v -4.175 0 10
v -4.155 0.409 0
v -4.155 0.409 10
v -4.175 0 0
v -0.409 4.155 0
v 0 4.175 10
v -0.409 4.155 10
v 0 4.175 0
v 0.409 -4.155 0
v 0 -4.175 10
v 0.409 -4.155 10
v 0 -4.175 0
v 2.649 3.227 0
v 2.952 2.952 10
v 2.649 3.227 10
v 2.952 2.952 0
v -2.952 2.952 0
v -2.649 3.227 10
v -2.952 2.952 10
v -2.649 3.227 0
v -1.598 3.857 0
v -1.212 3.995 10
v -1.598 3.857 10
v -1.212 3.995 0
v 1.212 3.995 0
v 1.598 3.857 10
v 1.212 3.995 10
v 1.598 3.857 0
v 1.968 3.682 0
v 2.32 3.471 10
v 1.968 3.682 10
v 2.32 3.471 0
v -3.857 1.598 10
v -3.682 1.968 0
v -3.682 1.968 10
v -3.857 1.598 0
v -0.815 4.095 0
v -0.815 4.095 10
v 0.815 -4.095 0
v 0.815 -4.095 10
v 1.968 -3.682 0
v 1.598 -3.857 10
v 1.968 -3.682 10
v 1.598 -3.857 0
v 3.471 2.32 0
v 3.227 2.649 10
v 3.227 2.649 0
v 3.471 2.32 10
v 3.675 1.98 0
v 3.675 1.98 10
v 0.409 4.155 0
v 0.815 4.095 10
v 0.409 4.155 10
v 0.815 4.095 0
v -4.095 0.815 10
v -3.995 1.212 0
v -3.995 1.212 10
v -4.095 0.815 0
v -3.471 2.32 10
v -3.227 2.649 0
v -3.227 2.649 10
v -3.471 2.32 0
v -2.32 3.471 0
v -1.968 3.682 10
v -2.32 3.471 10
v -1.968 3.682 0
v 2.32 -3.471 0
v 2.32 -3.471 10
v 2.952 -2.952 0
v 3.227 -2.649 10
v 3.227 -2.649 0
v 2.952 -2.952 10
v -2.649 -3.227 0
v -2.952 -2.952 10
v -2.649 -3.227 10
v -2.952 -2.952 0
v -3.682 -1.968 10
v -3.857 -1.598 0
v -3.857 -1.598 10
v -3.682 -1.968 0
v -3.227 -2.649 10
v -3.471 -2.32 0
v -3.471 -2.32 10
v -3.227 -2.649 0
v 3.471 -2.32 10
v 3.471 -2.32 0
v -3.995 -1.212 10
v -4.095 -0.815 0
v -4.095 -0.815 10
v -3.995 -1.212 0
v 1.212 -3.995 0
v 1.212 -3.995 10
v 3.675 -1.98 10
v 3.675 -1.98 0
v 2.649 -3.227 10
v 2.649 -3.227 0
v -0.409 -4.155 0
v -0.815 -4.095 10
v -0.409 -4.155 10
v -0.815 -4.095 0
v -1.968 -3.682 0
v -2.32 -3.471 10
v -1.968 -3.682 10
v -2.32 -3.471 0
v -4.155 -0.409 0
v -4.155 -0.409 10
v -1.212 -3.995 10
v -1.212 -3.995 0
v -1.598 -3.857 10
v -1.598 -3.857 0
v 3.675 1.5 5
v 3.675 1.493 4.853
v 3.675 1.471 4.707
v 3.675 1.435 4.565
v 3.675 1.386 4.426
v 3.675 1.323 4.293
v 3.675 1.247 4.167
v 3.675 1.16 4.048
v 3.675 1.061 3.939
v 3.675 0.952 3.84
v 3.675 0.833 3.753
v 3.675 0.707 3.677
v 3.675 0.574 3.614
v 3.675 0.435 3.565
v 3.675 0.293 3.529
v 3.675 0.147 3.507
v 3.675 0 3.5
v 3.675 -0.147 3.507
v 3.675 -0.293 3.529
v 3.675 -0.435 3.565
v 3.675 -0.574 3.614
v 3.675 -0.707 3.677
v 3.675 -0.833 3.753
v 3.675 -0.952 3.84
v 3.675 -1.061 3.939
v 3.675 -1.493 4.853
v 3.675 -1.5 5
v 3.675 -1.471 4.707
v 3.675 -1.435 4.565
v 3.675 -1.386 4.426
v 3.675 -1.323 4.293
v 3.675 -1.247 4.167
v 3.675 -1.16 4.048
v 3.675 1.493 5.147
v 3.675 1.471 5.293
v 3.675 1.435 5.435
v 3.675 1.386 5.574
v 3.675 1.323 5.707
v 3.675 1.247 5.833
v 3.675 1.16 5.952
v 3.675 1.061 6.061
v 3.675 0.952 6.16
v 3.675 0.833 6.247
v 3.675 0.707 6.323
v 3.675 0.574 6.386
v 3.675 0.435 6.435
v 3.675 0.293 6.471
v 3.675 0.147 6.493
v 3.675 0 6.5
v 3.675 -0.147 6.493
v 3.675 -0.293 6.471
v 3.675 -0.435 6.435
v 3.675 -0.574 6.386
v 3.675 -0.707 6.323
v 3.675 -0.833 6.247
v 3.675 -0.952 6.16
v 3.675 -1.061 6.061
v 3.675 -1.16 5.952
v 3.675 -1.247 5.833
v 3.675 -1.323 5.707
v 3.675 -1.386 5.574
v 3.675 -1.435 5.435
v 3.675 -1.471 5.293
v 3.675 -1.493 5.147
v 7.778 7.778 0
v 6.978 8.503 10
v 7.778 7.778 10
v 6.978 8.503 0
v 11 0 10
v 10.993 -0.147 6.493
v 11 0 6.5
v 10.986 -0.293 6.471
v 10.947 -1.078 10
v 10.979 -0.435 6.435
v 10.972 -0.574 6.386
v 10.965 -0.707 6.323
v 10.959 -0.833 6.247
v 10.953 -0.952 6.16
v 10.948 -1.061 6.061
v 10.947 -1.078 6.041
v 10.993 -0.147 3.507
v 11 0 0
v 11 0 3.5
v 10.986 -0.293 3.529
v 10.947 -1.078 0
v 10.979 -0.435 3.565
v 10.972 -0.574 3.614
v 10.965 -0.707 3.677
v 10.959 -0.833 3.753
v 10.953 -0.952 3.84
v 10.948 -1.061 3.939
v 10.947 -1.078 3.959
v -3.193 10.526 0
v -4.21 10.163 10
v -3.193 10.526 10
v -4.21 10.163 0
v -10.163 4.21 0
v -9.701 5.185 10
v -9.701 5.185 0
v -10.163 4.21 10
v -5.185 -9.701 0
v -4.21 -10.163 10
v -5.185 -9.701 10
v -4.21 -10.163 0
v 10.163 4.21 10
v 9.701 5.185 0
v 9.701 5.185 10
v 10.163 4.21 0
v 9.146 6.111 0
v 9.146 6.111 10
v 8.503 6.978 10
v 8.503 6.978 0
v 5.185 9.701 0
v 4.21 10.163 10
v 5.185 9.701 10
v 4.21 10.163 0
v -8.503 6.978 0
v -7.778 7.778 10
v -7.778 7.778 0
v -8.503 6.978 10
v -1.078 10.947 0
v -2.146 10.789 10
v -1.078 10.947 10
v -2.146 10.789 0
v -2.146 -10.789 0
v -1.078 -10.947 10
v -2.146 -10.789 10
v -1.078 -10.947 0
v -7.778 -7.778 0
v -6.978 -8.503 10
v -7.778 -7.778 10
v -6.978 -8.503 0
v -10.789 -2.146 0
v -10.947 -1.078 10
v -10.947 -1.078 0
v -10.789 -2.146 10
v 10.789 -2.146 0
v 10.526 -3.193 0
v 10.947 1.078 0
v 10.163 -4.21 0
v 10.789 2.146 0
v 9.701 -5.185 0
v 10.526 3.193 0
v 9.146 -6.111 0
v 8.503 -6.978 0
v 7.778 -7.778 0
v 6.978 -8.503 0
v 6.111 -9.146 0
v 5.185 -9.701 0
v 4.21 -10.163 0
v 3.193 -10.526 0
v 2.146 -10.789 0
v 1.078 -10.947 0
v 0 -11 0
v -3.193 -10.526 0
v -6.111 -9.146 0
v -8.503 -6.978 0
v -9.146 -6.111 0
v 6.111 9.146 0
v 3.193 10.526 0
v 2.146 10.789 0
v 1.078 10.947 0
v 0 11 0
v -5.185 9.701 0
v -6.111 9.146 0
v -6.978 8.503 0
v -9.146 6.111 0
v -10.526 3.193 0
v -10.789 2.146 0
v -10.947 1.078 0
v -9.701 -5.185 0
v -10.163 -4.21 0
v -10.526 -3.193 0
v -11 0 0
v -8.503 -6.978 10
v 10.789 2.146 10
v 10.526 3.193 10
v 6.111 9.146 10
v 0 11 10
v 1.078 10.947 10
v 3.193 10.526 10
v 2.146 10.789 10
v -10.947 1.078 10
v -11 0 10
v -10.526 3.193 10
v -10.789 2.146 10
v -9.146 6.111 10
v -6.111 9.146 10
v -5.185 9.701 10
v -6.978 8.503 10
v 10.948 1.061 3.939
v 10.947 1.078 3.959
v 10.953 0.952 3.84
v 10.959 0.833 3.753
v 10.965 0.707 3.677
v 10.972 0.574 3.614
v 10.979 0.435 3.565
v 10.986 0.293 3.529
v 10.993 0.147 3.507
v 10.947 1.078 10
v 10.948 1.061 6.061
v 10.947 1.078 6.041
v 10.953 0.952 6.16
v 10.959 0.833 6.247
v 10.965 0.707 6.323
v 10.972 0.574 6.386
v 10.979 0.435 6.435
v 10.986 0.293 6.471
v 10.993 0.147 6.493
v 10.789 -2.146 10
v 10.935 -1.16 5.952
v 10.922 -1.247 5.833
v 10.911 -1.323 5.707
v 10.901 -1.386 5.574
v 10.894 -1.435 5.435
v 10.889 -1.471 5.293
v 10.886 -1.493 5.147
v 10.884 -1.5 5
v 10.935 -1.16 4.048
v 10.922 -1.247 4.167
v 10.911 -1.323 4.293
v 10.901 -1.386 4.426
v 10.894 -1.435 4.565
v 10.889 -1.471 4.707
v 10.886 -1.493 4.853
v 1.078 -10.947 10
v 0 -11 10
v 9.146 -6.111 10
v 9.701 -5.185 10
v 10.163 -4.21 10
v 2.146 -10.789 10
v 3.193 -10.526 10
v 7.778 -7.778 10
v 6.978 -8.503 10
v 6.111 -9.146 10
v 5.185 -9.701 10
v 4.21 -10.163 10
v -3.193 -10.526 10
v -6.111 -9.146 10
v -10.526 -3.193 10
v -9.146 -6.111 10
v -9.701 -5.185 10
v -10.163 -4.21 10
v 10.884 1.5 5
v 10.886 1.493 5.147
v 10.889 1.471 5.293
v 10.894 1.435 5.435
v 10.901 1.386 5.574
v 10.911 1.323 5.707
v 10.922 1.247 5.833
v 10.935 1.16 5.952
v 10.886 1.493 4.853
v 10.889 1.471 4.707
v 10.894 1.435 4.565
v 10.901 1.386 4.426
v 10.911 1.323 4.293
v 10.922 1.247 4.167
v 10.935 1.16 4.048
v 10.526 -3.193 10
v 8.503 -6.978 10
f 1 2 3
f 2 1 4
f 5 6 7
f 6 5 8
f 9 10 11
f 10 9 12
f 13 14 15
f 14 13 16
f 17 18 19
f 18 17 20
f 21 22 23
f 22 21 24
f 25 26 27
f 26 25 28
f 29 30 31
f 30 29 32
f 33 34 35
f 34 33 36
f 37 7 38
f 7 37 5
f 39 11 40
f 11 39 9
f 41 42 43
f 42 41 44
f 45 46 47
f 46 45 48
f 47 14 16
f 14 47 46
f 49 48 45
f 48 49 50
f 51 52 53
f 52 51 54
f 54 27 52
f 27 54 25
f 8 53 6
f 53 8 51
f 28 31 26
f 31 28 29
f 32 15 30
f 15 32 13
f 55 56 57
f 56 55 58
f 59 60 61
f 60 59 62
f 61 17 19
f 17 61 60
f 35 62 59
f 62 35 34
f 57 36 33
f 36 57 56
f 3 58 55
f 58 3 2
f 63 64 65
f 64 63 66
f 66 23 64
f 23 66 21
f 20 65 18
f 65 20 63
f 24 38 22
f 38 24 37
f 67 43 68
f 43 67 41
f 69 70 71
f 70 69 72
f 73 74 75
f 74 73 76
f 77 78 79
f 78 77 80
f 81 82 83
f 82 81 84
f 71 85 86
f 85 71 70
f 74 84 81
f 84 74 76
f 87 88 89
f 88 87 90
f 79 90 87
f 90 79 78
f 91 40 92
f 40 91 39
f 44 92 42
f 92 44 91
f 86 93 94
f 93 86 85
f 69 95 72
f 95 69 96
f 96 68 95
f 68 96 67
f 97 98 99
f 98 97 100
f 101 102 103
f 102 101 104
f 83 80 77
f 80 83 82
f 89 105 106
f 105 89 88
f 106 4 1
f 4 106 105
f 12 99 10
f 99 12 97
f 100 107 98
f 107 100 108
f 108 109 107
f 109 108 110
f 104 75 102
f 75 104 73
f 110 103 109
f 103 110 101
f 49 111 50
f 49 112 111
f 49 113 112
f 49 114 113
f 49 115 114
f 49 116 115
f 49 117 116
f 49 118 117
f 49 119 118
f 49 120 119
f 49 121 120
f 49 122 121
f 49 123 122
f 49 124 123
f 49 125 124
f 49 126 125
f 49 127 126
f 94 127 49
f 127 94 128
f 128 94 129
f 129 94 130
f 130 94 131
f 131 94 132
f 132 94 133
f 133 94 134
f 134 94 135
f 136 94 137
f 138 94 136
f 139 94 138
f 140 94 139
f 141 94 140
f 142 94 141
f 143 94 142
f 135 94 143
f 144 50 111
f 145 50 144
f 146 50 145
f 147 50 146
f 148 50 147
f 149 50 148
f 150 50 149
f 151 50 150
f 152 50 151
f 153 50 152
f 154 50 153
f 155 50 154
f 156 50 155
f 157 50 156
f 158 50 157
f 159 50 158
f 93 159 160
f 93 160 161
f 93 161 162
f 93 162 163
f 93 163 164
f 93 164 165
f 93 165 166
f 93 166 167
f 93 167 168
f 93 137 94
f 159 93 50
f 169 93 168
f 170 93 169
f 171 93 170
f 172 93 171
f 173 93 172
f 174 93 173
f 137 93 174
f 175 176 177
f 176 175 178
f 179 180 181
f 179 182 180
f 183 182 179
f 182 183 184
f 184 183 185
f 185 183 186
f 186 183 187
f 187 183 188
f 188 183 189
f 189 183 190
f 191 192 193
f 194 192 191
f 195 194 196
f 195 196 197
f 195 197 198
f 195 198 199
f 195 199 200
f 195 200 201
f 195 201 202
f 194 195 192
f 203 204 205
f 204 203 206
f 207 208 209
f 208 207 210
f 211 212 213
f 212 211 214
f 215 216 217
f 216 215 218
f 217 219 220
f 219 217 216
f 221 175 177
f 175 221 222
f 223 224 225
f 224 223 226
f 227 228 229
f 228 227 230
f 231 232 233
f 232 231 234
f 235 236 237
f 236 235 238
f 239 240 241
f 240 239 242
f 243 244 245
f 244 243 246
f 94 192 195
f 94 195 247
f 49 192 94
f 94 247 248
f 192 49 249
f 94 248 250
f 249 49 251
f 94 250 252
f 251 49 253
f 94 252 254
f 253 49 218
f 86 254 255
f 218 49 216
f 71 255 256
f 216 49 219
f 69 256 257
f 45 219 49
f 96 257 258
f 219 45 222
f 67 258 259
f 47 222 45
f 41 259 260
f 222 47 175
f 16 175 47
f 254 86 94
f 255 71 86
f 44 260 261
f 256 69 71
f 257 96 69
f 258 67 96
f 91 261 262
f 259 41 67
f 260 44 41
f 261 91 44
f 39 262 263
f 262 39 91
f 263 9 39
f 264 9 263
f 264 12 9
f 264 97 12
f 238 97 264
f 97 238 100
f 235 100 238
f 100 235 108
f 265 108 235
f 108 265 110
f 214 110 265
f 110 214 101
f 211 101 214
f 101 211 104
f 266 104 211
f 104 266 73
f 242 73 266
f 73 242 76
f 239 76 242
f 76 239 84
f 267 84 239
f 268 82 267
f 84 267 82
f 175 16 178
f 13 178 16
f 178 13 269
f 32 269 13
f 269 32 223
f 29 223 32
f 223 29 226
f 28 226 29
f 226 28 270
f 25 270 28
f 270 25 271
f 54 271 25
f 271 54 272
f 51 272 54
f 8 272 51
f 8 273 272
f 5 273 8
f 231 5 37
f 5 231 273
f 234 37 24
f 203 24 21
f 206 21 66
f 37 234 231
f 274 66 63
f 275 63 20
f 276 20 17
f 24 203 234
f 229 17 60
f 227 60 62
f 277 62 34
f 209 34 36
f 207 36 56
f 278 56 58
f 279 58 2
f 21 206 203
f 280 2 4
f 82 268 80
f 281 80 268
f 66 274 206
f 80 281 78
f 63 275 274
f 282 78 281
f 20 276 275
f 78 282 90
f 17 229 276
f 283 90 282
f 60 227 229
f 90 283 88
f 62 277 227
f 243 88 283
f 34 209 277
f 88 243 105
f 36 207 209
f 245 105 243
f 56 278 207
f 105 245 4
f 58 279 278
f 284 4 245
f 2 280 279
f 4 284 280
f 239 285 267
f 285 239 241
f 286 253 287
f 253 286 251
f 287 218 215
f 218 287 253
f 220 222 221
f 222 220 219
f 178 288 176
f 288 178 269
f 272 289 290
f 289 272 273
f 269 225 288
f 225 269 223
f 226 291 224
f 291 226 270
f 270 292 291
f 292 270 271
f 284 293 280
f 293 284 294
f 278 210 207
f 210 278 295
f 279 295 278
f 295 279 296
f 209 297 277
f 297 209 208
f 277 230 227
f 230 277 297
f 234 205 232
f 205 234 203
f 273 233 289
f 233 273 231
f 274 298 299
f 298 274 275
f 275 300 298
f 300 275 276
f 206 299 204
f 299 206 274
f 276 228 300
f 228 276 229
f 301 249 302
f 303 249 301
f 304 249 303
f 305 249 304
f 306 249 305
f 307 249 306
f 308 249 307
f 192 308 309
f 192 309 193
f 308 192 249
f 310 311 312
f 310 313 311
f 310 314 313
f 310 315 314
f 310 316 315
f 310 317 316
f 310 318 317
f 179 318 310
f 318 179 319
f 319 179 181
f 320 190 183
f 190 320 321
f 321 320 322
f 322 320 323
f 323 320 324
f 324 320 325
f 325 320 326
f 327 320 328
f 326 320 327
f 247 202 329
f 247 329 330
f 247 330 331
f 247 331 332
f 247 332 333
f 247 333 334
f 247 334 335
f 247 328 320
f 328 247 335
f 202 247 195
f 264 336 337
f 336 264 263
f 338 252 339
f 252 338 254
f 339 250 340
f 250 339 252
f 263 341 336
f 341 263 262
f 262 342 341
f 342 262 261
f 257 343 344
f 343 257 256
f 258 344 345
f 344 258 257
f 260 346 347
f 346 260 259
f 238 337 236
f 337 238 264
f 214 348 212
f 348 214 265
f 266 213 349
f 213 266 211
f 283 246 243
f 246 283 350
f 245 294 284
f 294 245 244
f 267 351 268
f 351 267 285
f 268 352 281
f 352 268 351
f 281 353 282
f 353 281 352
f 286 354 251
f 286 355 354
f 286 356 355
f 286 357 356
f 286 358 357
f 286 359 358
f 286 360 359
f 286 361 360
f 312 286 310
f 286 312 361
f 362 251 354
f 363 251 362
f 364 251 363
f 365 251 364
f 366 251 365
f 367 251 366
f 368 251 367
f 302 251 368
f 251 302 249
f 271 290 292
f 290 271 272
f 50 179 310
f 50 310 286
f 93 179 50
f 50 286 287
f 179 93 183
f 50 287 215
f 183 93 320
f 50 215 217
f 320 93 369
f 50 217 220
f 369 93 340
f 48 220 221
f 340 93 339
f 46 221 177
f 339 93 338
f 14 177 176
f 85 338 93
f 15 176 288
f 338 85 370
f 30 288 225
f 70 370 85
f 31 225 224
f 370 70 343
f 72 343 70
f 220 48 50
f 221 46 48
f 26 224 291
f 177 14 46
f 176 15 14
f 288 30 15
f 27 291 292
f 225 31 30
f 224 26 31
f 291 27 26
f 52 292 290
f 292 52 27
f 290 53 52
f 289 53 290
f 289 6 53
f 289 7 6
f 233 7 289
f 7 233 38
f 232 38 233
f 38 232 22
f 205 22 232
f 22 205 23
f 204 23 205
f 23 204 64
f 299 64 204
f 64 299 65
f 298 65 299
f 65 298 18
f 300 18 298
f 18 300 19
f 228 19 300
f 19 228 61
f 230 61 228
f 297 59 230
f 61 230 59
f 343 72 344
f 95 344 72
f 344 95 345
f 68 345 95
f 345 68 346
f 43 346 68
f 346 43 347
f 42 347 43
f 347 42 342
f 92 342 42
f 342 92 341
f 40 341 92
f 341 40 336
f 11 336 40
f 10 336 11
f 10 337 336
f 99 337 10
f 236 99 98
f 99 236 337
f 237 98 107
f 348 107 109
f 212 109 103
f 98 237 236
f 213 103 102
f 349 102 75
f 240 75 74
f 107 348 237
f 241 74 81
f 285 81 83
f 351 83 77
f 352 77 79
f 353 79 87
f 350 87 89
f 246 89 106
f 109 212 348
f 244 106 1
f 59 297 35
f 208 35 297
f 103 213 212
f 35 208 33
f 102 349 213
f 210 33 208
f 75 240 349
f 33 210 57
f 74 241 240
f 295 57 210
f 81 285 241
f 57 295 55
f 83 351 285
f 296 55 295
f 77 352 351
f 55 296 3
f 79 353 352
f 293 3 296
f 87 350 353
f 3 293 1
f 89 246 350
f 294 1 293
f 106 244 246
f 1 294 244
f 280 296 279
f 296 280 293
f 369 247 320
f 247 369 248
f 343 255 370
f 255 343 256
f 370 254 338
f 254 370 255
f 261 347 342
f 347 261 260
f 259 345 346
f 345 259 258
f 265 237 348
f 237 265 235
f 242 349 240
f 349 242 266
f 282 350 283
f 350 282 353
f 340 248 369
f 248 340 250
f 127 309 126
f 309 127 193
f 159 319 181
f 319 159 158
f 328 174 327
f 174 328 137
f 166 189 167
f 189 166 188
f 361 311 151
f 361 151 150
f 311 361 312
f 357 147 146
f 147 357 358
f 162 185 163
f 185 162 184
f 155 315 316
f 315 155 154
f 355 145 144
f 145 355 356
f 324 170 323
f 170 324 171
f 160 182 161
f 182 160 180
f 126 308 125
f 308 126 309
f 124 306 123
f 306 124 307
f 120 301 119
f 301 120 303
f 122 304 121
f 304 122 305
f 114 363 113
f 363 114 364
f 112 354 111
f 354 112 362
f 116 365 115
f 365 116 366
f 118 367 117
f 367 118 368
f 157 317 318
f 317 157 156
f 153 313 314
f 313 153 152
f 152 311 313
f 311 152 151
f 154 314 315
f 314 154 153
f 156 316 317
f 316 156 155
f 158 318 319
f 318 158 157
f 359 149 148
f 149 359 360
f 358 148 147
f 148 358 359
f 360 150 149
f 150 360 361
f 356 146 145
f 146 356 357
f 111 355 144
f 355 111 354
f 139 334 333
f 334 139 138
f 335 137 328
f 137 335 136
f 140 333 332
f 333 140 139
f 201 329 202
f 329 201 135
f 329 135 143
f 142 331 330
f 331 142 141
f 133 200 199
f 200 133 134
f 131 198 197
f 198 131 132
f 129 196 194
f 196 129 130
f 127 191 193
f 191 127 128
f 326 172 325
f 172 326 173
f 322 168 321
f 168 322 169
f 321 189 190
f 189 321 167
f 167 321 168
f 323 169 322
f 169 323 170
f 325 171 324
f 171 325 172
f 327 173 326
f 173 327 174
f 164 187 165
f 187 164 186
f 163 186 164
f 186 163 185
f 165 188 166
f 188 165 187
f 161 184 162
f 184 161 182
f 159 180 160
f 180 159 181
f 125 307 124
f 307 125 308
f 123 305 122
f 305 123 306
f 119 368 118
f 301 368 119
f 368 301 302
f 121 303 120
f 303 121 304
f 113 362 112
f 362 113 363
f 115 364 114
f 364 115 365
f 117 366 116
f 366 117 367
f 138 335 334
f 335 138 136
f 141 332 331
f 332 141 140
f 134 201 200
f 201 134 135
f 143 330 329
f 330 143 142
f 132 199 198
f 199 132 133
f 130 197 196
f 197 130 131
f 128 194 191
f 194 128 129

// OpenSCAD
// file: parameters.scad
// =============================================================================
// Gen-CL — nightly 2026-10-16 (physics_scorer, honest magpylib watts)
// Modular swap: exactly the Gen-CJ rotors, arcs and steel, on a thinner-copper stator (4.0 mm copper, so the magnet faces close in by 0.5 mm) that needs only ≈300 m of 26 AWG — the rest of the spool stays free. Swap stators by changing the gap sleeve only.
// Clocking 0 deg (magnets N facing S) + D-flat keyed bore + index notch + flip-symmetric hole map.
// Windable 2-piece bobbin; turns = physics_scorer turns_fit; copper only between flanges.
// Steel back-iron: 2× Ø198 × 4.76 mm (3/16") mild-steel discs (steel_backiron_disc.dxf); magnets sit ON the steel
// (through-pockets) -> score with --back-iron. Night 2026-10-16.
// =============================================================================
topology            = "dual_rotor";

// --- Wire / winding (physics_scorer winding-fit) -------------------------------
wire_awg            = 26;
wire_od             = 0.45;     // insulated OD mm (bare 0.405)
fill_realistic      = 0.65;     // insulated-wire area / window (DENSE layered wind with a jig; scorer cap 0.65)
turns               = 196;       // = physics_scorer turns_fit (do NOT raise)
coil_former_type    = "bobbin";
coil_core_inset     = 12.00;     // radial copper build: hub = copper boundary inset by this
wind_build_axial    = 0.0;      // nothing proud of the flanges
wind_build_radial   = 0.0;

// --- Bobbin (base + lid) ---------------------------------------------------------
coil_id_r           = 50.00;    // copper boundary sector
coil_od_r           = 104.00;
span_deg            = 25.99;    // = pitch - 2*asin((wall+0.85)/coil_id_r) -> >=1.2 mm stator web
former_web          = 4.00;     // copper height between flanges (TALL copper: steel keeps Bz up)
flange_t            = 0.80;     // >= 0.8 mm FDM wall rule (tall winds push on the flanges)
wall                = 0.80;     // flange lip beyond copper
former_bare_h       = former_web + 2 * flange_t;
coil_envelope_h     = former_bare_h + 2 * wind_build_axial;
tab_w               = 7.0;
tab_len             = 7.0;
tab_h               = former_bare_h / 2;
pin_d               = 1.9;      // 1.75 mm filament locating pin
coil_mount_r        = coil_od_r + 0.2 + 4.0;
lead_y              = 1.6;
lead_slot_w         = 0.9;
lead_groove_d       = 0.6;

// --- Gap -------------------------------------------------------------------------
run_clear           = 0.50;     // rotor face -> flange
gap_spacer_h        = run_clear + wind_build_axial;
m2m                 = coil_envelope_h + 2 * run_clear;   // rotor face to rotor face (= gap_sleeve length)

// --- Stator ----------------------------------------------------------------------
coil_stations       = 12;
bay_clear           = 0.35;     // 0.35 mm: bobbin BASES print IN PLACE inside the stator bays (print-in-place gap), then pop out
stator_thick        = former_bare_h;                        // bobbins flush both faces
stator_od           = 229.0;
shaft_clear_stator  = 14.0;     // stator is static; gap sleeve OD 12 spins inside
stator_ir           = 44.85;    // ANNULAR stator: open centre (nested one-plate pack); inner rim 4.0 mm

// --- Rotor(s) --------------------------------------------------------------------
magnet_Br           = 1.43;     // N52
magnet_d_large      = 20.0;
magnet_h_large      = 5.0;      // one O20x5 per pocket
magnet_h_small      = 5.0;      // one O5x5 per pocket
halbach_magnetisation = "diametric"; // O5x5 assist magnets MUST be DIAMETRICALLY magnetised (tangential)
rotor_b_same_axis   = true;     // same-index magnets share one axis: N faces S across the gap
large_pocket_d      = 20.3;
small_pocket_d      = 5.3;
pocket_h            = 5.00;     // THROUGH the carrier: magnet back face sits on the steel disc (FLUSH seat: carrier = magnet height, magnet face level with the rotor face)
large_n             = 8;
R_large             = 86.0;
R_small_inner       = 79.8;
R_small_mid         = 86.0;
R_small_outer       = 92.2;
small_r_list        = [R_small_inner, R_small_mid, R_small_outer];   // O5 pockets between poles
// --- N42 rectangular BLOCK magnets (2026-10-16/17): one 20x10x5 block per pole, radially INSIDE the O20 disc ---
block_R_list        = [64.5];   // block centre radius (pole angle); same polarity as its O20 -> radially extended pole
block_angle_list    = [0];
block_radial        = 20.0;    // block side that runs RADIALLY (mm)
block_tangential    = 10.0;    // block side that runs TANGENTIALLY (mm)
block_h             = 5.0;     // magnetised through the 5 mm thickness (axial), = magnet_h_large so it sits on the steel
block_Br            = 1.29;    // N42 remanence (1.28-1.32 T); scorer models it as a magpylib Cuboid
block_pocket_clear  = 0.3;    // pocket = block + 0.3 mm each way (+ 1.2 mm corner reliefs)
carrier_od          = 198.0;
ring_ir             = 51.35;    // RING rotor: PLA magnet ring r ring_ir..carrier_od/2 (steel disc = structural rotor)
hub_flange_od       = 58.0;     // separate rotor_hub flange (inside the ring, flush with the ring face)
csk_d               = 6.6;      // M3 countersunk head pocket (ISO 10642 head 6.0 nominal) on the stator face
csk_depth           = 1.55;     // = (csk_d - m3_clear) / 2: 90 deg cone; head sits 0.3 mm below the face
n_seg               = 8;        // magnet-carrier ARCS per rotor (segmented carrier)
seg_deg             = 360 / n_seg;
seg_start           = -32;   // arc edge angle (between pocket 0 and its clamp bolt)
seg_kerf_deg        = 0.4;      // gap between neighbouring arcs on the steel
carrier_thick       = pocket_h;
hub_h               = 12.0;     // > steel_t + insert: radial set-screw clears the steel
hub_od              = 24.0;     // slim hub so the M4 brace rods fit at R~18 inside the coil ring
hub_insert_d        = 4.0;      // M3 heat-set insert, radial, bears on the D-flat
rotor_b_offset_deg  = 0.0;      // CLOCKING: magnets directly opposite
shaft_key           = "dflat";
dflat_depth         = 0.5;      // 8 mm shaft with 0.5 mm flat (7.5 across flat)
index_notch_d       = 3.0;

// --- Steel back-iron (buyable laser-cut) -------------------------------------------
steel_t             = 4.76;      // mild steel thickness (image method ignores it; sized from steel_flux.py so the return path stays well below saturation)
steel_center_hole   = 26.0;     // slips over the rotor hub (OD 24)
steel_od            = carrier_od;   // steel disc OD = rotor carrier OD

// --- Modular MAX interface ----------------------------------------------------------
shaft_bore          = 8.35;
dflat_x             = 4.0 - dflat_depth + (shaft_bore - 8.0) / 2;
bearing_d           = 21.85;
bearing_h           = 7.2;
m3_clear            = 3.5;
bolt_r_inner        = 22.0;     // M3 steel-disc clamp bolts (inside the magnet ring)
bolt_n_inner        = 4;
bolt_inner_angles   = [0, 90, 180, 270];
bolt_r_outer        = 86.0;     // second M3 steel-disc clamp ring
bolt_outer_angles   = [13.0, 32.0, 58.0, 77.0, 103.0, 122.0, 148.0, 167.0, 193.0, 212.0, 238.0, 257.0, 283.0, 302.0, 328.0, 347.0];
flange_bolt_r       = 109.5;     // frame rods: OUTSIDE the rotor OD (rotors spin inside them)
flange_bolt_n       = 4;
flange_bolt_offset  = 45.00;    // between coil stations -> never cuts a lead groove/tab
brace_r             = 18.0;
brace_d             = 4.3;      // temporary M4 jack rods (assembly only)
brace_n             = 4;
brace_angles        = [45, 135, 225, 315];          // flip-symmetric

spacer_pad_od       = 14.0;
spacer_pad_id       = m3_clear;
endbell_od          = 229.0;
endbell_thick       = 8.0;
endbell_shaft_clear = 10.0;
collar_h            = 10.0;
standoff_od         = 9.0;
frame_standoff_h    = run_clear + carrier_thick + hub_h + collar_h + 2.0;
sleeve_od           = 12.0;
plate_max_mm        = 410;

$fn = 64;
// main file
// Gen-CL — shaft collar with D-flat bore (set screw bears on the flat); print x4
include <parameters.scad>;
$fn = 64;
// D-flat keyed bore: flat faces +X (angle 0 = magnet pocket 0 = index notch)
module dflat_bore(h) {
    intersection() {
        cylinder(d=shaft_bore, h=h);
        translate([-shaft_bore, -shaft_bore, 0]) cube([shaft_bore + dflat_x, 2*shaft_bore, h]);
    }
}

od = 22; h = collar_h; set_d = 3.0;
difference() {
    cylinder(d=od, h=h);
    translate([0, 0, -0.1]) dflat_bore(h + 0.2);
    translate([0, 0, h/2]) rotate([0, 90, 0]) cylinder(d=set_d, h=od);
}
